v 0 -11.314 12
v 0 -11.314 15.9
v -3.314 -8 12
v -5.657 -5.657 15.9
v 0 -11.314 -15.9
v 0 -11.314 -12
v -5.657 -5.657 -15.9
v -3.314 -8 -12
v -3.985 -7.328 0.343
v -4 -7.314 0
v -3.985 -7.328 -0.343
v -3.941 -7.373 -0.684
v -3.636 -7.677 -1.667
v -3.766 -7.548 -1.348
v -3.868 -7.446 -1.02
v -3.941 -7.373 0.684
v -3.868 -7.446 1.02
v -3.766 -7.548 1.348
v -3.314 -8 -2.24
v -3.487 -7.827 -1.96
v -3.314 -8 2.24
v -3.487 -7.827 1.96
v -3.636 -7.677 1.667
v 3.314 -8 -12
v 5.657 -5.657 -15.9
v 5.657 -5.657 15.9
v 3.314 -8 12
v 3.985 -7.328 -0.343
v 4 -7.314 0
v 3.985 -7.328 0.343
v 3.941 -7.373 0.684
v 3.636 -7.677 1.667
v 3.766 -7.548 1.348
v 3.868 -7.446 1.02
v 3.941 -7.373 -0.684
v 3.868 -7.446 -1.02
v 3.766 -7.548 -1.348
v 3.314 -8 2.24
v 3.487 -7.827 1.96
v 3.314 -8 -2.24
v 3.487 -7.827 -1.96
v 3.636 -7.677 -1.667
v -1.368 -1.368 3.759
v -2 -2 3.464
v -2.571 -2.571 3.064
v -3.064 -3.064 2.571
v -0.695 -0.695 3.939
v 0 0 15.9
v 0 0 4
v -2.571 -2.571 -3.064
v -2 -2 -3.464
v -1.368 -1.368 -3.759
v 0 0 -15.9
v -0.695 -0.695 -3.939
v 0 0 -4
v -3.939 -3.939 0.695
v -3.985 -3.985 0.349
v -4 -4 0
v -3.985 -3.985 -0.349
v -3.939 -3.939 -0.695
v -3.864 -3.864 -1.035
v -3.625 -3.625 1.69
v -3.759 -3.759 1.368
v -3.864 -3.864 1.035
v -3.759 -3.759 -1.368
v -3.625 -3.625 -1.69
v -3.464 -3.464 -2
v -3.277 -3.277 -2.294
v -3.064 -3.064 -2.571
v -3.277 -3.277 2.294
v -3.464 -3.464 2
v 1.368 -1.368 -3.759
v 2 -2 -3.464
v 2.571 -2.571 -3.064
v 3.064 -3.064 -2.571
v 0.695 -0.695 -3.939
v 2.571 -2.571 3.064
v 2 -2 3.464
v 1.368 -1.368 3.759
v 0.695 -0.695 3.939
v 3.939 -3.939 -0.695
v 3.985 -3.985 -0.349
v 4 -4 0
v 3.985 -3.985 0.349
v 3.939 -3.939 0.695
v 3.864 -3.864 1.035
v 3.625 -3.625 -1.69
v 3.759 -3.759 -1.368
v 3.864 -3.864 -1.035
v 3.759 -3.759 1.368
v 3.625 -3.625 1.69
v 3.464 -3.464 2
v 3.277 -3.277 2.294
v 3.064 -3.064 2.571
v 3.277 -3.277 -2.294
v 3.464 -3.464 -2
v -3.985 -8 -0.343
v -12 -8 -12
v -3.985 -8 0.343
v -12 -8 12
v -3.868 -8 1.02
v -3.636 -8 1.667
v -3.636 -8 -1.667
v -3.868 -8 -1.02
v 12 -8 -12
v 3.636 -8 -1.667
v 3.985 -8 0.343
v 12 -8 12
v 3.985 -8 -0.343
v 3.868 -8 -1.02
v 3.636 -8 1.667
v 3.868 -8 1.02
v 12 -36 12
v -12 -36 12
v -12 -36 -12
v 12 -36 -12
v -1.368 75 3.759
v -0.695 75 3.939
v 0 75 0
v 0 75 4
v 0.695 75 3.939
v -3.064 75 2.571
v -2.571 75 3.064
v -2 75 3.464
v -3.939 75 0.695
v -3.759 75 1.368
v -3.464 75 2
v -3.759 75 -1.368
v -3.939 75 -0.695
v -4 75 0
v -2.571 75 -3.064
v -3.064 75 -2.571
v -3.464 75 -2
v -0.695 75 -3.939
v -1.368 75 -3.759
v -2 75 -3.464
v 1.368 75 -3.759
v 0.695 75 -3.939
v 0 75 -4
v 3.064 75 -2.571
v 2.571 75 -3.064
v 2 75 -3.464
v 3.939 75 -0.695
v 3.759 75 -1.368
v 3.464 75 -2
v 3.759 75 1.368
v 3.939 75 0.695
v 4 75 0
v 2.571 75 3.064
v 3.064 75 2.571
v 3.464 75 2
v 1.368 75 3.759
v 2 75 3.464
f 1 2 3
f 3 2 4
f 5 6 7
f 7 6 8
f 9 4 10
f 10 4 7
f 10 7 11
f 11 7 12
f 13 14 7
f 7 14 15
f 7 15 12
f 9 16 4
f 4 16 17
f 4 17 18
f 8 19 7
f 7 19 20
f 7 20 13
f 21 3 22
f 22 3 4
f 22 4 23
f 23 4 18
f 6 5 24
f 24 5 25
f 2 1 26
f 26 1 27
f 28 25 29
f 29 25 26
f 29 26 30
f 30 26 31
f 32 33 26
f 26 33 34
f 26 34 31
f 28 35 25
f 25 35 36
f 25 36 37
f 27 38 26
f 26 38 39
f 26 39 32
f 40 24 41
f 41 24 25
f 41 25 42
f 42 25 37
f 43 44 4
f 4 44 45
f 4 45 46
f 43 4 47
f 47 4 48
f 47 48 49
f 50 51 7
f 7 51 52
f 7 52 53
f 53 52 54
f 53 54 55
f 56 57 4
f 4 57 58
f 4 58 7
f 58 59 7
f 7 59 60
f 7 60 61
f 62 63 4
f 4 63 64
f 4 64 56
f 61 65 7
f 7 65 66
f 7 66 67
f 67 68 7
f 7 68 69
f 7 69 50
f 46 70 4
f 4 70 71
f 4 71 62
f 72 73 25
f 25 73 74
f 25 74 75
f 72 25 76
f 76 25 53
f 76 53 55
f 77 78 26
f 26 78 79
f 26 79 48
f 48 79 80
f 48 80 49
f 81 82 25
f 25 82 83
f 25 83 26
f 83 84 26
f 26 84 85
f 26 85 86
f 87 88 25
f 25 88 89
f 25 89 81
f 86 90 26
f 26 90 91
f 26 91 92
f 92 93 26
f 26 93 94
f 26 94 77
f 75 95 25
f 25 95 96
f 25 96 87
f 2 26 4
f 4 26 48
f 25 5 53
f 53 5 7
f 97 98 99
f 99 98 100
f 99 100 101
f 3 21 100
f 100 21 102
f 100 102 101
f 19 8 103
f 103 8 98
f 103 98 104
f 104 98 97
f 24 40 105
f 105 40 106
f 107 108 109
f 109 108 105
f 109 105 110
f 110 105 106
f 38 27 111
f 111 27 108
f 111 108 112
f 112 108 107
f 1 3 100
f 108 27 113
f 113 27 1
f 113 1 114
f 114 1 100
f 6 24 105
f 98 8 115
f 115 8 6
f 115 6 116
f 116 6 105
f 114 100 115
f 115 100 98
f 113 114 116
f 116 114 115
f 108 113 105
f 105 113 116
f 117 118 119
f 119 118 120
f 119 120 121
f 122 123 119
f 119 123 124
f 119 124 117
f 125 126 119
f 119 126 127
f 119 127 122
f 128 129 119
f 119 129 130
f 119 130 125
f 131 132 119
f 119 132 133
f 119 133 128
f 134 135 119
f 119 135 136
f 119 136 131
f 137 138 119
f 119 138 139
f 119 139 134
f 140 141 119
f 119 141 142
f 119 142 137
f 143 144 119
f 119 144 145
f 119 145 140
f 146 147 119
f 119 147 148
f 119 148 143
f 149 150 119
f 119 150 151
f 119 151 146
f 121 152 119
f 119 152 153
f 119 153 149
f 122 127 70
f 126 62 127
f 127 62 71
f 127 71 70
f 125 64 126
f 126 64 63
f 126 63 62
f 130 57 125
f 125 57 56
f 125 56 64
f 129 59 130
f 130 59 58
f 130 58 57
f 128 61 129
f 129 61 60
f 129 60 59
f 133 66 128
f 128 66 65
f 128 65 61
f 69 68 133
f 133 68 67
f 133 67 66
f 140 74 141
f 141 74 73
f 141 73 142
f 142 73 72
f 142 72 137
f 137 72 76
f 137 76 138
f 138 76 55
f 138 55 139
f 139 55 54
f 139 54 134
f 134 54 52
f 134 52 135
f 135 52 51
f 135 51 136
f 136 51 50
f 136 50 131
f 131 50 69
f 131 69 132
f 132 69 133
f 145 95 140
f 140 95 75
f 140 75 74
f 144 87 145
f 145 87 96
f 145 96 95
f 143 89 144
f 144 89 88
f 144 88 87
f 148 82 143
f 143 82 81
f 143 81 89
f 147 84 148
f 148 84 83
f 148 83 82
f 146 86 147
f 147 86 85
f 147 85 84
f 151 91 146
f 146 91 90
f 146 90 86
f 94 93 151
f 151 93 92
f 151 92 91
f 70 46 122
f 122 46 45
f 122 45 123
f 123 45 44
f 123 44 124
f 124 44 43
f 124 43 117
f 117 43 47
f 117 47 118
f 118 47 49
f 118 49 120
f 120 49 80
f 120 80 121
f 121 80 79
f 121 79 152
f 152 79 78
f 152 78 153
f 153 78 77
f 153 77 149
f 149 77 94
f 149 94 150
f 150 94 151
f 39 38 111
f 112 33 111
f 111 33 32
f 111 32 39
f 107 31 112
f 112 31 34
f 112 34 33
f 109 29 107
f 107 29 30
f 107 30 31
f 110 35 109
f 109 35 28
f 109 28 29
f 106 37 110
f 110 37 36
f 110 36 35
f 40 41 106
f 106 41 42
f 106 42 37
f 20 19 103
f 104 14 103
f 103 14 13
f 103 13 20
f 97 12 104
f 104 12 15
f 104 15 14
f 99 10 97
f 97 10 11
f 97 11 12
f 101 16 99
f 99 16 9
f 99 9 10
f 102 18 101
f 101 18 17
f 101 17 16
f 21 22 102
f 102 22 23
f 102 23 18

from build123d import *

# Parameters (mm, degrees)
BOSS_EXTRUDE1_DEPTH = 15.9
SKETCH2_W           = 24
SKETCH2_H           = 28
BOSS_EXTRUDE2_DEPTH = 12
BOSS_EXTRUDE3_START = -8
SKETCH3_R           = 4
BOSS_EXTRUDE3_DEPTH = 83


with BuildPart() as part:
    # Sketch1 → Boss-Extrude1 (new, symmetric)
    with BuildSketch(Plane.XY):
        Polygon((0, 0), (5.656854249, -5.656854249), (0, -11.313708499), (-5.656854249, -5.656854249), align=None)
    extrude(amount=BOSS_EXTRUDE1_DEPTH, both=True)

    # Sketch2 → Boss-Extrude2 (add, symmetric)
    with BuildSketch(Plane.XY):
        with Locations((0, -22)):
            Rectangle(SKETCH2_W, SKETCH2_H)
    extrude(amount=BOSS_EXTRUDE2_DEPTH, both=True)

    # Sketch3 → Boss-Extrude3 (add)
    with BuildSketch(Plane(origin=(0, 0, 0), x_dir=(1, 0, 0), z_dir=(0, 1, 0)).offset(BOSS_EXTRUDE3_START)):
        with Locations(Location((0, 0, 0), (0, 0, 270))):
            Circle(SKETCH3_R)
    extrude(amount=BOSS_EXTRUDE3_DEPTH)


solid = part.part
